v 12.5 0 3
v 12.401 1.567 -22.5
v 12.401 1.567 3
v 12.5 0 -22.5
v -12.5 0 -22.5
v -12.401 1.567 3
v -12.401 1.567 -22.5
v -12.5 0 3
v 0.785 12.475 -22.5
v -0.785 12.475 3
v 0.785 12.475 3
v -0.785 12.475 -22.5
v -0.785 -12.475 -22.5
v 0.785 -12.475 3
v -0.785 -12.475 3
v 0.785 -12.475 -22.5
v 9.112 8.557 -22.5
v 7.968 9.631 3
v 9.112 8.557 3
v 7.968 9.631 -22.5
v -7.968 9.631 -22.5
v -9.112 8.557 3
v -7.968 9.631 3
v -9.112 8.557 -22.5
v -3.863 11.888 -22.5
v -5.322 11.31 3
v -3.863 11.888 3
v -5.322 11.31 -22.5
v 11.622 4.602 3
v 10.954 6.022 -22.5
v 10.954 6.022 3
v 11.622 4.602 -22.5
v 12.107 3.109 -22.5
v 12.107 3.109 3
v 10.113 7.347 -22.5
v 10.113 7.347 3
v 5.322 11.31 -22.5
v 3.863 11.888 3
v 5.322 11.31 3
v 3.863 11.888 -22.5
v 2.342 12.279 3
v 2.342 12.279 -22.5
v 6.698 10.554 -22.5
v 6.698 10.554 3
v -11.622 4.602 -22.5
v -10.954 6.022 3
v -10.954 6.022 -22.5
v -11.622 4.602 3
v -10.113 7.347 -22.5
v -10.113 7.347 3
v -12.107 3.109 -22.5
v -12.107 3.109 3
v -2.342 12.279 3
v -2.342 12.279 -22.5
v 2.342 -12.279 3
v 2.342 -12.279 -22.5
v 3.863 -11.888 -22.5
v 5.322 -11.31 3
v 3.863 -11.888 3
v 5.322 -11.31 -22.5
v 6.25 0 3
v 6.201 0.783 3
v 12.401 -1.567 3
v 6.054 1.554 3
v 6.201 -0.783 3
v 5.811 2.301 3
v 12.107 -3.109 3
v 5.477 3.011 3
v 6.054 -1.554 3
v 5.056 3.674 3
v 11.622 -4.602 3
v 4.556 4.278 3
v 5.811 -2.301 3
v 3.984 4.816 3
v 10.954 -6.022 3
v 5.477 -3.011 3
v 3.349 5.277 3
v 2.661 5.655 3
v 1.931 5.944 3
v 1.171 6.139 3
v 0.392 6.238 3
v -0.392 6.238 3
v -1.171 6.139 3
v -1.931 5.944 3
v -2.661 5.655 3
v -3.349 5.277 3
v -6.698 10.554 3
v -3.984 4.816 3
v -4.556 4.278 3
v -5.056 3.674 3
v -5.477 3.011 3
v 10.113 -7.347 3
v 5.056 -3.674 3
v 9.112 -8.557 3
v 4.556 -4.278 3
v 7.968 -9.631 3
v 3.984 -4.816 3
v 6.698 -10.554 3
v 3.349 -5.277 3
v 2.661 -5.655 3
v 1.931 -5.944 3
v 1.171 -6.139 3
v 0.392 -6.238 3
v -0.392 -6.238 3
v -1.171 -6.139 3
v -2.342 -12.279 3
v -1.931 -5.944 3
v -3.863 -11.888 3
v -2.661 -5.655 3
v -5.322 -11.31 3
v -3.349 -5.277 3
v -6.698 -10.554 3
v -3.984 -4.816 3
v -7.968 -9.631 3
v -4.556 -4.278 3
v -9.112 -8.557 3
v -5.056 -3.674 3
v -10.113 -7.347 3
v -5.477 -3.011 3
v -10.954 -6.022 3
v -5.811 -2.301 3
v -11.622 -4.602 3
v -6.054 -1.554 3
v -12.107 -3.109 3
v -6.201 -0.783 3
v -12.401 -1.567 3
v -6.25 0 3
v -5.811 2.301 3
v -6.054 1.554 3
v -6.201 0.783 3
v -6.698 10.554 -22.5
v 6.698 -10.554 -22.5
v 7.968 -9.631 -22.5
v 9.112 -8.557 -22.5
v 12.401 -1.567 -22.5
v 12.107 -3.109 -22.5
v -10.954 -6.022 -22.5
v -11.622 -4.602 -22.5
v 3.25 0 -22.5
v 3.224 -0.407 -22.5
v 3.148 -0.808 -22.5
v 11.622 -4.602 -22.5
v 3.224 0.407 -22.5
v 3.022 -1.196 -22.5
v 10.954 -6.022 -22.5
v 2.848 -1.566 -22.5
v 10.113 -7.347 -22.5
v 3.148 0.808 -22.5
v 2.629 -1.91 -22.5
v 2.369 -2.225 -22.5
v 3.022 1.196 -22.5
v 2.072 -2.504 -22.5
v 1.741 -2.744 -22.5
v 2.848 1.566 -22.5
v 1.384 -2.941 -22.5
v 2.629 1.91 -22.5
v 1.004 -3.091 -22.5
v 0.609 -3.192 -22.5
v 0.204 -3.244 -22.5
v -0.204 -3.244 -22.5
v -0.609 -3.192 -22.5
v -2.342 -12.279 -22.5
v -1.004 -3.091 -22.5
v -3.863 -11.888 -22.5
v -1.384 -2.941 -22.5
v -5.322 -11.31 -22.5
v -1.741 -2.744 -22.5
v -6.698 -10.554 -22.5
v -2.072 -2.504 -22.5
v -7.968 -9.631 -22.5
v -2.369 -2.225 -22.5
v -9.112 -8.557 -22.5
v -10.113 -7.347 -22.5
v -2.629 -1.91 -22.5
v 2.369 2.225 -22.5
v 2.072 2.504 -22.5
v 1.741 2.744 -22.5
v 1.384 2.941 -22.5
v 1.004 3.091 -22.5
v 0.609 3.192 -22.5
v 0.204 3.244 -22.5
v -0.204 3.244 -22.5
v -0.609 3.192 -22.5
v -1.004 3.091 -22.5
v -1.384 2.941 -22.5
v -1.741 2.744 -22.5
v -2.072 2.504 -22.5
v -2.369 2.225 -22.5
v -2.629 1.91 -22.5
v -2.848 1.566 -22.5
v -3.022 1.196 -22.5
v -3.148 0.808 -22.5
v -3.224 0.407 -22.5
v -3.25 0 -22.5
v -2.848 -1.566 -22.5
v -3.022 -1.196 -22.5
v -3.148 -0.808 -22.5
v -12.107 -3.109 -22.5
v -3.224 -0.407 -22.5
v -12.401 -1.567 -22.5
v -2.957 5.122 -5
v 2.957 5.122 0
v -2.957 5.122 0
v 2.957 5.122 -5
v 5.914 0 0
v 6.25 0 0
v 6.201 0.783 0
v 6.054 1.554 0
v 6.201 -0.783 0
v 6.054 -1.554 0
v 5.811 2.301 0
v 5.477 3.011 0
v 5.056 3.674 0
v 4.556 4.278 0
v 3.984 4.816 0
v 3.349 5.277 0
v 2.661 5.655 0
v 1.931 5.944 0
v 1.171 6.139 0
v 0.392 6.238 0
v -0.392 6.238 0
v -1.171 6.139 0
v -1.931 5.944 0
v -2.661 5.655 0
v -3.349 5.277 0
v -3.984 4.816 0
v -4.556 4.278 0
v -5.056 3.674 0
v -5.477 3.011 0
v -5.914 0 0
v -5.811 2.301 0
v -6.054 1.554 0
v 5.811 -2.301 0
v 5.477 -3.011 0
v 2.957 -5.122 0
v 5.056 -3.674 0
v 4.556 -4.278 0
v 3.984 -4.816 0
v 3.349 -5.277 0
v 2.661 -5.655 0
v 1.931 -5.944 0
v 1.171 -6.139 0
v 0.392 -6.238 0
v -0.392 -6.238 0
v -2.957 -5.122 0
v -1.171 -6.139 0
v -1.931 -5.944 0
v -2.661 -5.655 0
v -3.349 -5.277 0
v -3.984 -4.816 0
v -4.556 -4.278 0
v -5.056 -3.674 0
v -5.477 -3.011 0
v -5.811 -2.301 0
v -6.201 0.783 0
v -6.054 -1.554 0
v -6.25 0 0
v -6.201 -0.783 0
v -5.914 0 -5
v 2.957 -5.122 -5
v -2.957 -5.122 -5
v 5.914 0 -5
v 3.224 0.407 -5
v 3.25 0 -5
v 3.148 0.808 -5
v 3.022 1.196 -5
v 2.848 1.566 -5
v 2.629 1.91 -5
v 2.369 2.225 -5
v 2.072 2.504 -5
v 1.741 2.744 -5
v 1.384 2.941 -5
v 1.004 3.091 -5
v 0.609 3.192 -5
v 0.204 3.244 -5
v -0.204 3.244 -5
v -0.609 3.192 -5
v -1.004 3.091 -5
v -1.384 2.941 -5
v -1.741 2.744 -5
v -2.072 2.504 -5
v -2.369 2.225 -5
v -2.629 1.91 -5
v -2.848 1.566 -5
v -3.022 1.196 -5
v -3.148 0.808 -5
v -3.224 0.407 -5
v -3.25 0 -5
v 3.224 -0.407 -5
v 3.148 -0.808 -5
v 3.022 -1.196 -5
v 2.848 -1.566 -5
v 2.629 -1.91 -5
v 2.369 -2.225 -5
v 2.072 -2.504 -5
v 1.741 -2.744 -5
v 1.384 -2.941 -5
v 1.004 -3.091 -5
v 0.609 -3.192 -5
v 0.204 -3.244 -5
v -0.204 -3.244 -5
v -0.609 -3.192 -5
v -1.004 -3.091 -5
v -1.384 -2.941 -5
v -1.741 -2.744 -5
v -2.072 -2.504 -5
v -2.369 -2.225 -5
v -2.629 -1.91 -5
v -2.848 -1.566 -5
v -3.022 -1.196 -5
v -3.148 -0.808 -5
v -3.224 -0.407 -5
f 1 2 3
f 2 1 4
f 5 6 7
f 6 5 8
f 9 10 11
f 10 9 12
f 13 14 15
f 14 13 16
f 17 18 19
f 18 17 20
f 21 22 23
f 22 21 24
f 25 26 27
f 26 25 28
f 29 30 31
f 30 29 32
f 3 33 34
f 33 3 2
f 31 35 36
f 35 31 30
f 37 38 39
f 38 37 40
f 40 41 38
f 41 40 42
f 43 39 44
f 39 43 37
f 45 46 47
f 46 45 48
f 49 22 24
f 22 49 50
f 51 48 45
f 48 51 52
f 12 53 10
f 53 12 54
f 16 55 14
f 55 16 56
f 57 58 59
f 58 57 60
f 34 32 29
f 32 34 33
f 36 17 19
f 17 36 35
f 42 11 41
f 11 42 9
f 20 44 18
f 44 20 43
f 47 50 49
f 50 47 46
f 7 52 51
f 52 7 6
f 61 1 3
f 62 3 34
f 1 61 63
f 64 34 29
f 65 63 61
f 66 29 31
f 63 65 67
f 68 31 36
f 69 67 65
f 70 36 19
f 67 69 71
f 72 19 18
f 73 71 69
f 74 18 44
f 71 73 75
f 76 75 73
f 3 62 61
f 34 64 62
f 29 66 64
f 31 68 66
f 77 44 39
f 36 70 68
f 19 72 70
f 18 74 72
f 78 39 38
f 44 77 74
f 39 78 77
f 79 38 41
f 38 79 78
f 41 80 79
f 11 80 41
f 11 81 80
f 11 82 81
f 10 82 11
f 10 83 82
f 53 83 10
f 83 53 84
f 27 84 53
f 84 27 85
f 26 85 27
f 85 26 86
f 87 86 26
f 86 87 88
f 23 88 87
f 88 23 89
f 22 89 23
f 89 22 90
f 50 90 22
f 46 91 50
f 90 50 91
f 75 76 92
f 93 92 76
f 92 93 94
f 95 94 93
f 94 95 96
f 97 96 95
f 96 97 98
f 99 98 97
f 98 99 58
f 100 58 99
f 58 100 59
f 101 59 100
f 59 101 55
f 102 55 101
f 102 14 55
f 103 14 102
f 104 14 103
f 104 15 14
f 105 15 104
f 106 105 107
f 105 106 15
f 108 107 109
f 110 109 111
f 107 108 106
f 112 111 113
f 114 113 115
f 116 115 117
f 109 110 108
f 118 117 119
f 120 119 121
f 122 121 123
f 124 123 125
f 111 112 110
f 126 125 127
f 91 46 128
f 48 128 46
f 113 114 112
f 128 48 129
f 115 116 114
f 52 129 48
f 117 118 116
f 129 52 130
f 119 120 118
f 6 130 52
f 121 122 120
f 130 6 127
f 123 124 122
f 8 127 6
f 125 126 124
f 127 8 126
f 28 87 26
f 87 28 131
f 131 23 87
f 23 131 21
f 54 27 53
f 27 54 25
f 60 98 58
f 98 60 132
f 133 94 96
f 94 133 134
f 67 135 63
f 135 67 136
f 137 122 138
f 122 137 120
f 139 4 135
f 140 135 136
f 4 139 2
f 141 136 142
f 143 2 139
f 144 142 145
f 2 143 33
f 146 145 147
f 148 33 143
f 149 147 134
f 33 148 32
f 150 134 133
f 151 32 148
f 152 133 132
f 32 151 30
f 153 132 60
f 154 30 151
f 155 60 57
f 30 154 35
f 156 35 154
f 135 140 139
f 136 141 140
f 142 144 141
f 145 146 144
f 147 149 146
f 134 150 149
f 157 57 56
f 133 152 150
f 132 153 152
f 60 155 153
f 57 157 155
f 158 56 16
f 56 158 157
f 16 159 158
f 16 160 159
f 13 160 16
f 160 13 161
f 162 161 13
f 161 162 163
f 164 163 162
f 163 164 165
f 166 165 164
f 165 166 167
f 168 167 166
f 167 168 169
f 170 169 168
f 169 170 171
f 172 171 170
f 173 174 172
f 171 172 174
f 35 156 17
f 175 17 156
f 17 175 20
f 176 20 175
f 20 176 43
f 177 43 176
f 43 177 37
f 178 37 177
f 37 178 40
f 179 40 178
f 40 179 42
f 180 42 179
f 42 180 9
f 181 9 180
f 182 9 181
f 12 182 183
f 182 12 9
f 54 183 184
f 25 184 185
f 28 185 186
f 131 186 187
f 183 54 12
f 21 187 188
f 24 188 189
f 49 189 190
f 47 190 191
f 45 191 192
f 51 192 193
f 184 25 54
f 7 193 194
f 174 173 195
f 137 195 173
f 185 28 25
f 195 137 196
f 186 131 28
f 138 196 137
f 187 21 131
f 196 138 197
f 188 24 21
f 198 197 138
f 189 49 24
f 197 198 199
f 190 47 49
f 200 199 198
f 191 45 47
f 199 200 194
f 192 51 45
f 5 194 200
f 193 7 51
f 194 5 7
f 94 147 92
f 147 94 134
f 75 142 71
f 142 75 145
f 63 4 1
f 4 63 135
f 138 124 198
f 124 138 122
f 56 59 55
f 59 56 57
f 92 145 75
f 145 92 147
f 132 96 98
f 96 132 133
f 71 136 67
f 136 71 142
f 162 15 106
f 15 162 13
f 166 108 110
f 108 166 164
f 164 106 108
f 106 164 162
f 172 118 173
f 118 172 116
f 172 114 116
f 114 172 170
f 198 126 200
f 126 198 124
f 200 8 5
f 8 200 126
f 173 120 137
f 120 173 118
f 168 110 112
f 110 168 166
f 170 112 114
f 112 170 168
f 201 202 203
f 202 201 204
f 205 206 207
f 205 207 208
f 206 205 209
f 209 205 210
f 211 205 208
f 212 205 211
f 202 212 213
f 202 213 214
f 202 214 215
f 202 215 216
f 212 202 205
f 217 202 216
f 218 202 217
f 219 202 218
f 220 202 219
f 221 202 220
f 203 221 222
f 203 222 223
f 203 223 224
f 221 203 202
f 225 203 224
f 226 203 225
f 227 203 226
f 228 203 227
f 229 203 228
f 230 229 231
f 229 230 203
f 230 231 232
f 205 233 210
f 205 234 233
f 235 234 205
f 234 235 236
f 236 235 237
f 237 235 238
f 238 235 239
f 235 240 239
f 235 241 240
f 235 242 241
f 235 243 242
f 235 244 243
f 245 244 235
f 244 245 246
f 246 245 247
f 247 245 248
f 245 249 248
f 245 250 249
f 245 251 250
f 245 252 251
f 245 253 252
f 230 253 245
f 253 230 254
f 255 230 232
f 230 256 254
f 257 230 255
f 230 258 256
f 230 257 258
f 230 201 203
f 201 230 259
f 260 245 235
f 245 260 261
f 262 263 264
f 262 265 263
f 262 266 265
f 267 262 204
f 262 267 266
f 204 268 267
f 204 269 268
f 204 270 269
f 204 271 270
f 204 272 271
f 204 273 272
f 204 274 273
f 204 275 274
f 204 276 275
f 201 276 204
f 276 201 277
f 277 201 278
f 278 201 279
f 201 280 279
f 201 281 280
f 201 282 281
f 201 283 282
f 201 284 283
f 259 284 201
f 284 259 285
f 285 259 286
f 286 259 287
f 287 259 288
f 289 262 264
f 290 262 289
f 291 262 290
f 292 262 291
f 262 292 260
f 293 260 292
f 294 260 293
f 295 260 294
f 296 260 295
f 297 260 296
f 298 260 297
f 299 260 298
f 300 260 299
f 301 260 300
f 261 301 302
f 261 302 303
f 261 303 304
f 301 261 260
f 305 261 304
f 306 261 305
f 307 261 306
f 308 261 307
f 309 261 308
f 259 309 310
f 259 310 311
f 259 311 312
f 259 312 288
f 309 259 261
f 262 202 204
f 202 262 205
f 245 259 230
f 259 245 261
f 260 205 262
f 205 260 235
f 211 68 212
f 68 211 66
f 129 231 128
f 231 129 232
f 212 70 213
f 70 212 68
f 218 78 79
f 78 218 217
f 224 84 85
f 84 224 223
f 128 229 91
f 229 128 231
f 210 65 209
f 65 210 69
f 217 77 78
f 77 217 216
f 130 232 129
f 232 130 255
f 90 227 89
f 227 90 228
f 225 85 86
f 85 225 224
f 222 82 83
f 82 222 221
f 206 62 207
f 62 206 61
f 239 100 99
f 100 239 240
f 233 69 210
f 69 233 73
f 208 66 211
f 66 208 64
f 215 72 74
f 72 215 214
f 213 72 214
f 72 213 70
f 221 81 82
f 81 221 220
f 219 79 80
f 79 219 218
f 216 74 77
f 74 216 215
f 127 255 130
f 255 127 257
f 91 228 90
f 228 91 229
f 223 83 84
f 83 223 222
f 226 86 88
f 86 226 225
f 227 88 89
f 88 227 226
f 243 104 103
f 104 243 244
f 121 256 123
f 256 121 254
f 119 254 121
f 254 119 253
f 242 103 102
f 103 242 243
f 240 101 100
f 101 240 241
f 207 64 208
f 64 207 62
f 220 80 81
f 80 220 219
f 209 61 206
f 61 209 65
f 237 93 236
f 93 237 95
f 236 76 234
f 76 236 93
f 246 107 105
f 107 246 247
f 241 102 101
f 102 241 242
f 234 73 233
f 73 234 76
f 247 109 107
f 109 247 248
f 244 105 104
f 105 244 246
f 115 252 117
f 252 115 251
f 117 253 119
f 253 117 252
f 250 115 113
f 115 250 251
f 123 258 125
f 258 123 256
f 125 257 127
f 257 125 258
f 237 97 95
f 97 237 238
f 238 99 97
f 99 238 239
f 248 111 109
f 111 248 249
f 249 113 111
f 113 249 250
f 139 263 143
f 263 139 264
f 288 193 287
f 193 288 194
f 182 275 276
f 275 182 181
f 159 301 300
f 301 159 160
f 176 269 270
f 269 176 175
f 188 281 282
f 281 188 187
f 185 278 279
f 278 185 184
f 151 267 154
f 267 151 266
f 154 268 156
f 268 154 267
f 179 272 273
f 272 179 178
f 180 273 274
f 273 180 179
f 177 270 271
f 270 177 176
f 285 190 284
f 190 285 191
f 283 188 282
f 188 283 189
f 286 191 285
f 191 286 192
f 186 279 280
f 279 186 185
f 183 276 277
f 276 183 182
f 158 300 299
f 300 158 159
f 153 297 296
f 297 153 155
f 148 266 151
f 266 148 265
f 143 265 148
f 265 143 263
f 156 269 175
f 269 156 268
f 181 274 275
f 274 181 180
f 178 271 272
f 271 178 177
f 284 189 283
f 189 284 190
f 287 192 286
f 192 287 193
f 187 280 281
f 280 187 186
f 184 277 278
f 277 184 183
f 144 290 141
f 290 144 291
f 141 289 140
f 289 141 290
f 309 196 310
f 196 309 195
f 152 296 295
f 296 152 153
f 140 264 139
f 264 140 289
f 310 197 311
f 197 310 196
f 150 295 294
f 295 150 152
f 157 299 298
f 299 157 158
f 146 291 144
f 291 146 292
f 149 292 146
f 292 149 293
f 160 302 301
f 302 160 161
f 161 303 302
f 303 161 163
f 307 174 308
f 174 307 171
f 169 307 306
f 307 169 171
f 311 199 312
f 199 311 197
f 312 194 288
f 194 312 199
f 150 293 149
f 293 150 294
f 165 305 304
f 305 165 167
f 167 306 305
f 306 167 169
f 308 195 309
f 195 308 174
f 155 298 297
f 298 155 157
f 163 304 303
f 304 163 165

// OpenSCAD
$fn = 50;

difference() {
	union() {
		translate(v = [0, 0, -22.5]) {
			cylinder(h = 25.5, r = 12.5);
		}
		#translate(v = [0, 0, -24.0]) {
			cylinder(h = 24, r = 2.875);
		}
	}
	union() {
		translate(v = [0, 0, 0]) {
			rotate(a = [0, 0, 0]) {
				difference() {
					union() {
						translate(v = [0, 0, -5]) {
							linear_extrude(height = 5) {
								polygon(points = [[5.914249999999999, 0.0], [2.957125, 5.1218907443321156], [-2.9571249999999982, 5.1218907443321156], [-5.914249999999999, 7.242867331857232e-16], [-2.9571250000000022, -5.121890744332115], [2.9571249999999956, -5.121890744332118]]);
							}
						}
					}
					union();
				}
			}
		}
		#cylinder(h = 3, r = 6.25);
		#translate(v = [0, 0, -100.0]) {
			cylinder(h = 200, r = 3.25);
		}
	}
}
